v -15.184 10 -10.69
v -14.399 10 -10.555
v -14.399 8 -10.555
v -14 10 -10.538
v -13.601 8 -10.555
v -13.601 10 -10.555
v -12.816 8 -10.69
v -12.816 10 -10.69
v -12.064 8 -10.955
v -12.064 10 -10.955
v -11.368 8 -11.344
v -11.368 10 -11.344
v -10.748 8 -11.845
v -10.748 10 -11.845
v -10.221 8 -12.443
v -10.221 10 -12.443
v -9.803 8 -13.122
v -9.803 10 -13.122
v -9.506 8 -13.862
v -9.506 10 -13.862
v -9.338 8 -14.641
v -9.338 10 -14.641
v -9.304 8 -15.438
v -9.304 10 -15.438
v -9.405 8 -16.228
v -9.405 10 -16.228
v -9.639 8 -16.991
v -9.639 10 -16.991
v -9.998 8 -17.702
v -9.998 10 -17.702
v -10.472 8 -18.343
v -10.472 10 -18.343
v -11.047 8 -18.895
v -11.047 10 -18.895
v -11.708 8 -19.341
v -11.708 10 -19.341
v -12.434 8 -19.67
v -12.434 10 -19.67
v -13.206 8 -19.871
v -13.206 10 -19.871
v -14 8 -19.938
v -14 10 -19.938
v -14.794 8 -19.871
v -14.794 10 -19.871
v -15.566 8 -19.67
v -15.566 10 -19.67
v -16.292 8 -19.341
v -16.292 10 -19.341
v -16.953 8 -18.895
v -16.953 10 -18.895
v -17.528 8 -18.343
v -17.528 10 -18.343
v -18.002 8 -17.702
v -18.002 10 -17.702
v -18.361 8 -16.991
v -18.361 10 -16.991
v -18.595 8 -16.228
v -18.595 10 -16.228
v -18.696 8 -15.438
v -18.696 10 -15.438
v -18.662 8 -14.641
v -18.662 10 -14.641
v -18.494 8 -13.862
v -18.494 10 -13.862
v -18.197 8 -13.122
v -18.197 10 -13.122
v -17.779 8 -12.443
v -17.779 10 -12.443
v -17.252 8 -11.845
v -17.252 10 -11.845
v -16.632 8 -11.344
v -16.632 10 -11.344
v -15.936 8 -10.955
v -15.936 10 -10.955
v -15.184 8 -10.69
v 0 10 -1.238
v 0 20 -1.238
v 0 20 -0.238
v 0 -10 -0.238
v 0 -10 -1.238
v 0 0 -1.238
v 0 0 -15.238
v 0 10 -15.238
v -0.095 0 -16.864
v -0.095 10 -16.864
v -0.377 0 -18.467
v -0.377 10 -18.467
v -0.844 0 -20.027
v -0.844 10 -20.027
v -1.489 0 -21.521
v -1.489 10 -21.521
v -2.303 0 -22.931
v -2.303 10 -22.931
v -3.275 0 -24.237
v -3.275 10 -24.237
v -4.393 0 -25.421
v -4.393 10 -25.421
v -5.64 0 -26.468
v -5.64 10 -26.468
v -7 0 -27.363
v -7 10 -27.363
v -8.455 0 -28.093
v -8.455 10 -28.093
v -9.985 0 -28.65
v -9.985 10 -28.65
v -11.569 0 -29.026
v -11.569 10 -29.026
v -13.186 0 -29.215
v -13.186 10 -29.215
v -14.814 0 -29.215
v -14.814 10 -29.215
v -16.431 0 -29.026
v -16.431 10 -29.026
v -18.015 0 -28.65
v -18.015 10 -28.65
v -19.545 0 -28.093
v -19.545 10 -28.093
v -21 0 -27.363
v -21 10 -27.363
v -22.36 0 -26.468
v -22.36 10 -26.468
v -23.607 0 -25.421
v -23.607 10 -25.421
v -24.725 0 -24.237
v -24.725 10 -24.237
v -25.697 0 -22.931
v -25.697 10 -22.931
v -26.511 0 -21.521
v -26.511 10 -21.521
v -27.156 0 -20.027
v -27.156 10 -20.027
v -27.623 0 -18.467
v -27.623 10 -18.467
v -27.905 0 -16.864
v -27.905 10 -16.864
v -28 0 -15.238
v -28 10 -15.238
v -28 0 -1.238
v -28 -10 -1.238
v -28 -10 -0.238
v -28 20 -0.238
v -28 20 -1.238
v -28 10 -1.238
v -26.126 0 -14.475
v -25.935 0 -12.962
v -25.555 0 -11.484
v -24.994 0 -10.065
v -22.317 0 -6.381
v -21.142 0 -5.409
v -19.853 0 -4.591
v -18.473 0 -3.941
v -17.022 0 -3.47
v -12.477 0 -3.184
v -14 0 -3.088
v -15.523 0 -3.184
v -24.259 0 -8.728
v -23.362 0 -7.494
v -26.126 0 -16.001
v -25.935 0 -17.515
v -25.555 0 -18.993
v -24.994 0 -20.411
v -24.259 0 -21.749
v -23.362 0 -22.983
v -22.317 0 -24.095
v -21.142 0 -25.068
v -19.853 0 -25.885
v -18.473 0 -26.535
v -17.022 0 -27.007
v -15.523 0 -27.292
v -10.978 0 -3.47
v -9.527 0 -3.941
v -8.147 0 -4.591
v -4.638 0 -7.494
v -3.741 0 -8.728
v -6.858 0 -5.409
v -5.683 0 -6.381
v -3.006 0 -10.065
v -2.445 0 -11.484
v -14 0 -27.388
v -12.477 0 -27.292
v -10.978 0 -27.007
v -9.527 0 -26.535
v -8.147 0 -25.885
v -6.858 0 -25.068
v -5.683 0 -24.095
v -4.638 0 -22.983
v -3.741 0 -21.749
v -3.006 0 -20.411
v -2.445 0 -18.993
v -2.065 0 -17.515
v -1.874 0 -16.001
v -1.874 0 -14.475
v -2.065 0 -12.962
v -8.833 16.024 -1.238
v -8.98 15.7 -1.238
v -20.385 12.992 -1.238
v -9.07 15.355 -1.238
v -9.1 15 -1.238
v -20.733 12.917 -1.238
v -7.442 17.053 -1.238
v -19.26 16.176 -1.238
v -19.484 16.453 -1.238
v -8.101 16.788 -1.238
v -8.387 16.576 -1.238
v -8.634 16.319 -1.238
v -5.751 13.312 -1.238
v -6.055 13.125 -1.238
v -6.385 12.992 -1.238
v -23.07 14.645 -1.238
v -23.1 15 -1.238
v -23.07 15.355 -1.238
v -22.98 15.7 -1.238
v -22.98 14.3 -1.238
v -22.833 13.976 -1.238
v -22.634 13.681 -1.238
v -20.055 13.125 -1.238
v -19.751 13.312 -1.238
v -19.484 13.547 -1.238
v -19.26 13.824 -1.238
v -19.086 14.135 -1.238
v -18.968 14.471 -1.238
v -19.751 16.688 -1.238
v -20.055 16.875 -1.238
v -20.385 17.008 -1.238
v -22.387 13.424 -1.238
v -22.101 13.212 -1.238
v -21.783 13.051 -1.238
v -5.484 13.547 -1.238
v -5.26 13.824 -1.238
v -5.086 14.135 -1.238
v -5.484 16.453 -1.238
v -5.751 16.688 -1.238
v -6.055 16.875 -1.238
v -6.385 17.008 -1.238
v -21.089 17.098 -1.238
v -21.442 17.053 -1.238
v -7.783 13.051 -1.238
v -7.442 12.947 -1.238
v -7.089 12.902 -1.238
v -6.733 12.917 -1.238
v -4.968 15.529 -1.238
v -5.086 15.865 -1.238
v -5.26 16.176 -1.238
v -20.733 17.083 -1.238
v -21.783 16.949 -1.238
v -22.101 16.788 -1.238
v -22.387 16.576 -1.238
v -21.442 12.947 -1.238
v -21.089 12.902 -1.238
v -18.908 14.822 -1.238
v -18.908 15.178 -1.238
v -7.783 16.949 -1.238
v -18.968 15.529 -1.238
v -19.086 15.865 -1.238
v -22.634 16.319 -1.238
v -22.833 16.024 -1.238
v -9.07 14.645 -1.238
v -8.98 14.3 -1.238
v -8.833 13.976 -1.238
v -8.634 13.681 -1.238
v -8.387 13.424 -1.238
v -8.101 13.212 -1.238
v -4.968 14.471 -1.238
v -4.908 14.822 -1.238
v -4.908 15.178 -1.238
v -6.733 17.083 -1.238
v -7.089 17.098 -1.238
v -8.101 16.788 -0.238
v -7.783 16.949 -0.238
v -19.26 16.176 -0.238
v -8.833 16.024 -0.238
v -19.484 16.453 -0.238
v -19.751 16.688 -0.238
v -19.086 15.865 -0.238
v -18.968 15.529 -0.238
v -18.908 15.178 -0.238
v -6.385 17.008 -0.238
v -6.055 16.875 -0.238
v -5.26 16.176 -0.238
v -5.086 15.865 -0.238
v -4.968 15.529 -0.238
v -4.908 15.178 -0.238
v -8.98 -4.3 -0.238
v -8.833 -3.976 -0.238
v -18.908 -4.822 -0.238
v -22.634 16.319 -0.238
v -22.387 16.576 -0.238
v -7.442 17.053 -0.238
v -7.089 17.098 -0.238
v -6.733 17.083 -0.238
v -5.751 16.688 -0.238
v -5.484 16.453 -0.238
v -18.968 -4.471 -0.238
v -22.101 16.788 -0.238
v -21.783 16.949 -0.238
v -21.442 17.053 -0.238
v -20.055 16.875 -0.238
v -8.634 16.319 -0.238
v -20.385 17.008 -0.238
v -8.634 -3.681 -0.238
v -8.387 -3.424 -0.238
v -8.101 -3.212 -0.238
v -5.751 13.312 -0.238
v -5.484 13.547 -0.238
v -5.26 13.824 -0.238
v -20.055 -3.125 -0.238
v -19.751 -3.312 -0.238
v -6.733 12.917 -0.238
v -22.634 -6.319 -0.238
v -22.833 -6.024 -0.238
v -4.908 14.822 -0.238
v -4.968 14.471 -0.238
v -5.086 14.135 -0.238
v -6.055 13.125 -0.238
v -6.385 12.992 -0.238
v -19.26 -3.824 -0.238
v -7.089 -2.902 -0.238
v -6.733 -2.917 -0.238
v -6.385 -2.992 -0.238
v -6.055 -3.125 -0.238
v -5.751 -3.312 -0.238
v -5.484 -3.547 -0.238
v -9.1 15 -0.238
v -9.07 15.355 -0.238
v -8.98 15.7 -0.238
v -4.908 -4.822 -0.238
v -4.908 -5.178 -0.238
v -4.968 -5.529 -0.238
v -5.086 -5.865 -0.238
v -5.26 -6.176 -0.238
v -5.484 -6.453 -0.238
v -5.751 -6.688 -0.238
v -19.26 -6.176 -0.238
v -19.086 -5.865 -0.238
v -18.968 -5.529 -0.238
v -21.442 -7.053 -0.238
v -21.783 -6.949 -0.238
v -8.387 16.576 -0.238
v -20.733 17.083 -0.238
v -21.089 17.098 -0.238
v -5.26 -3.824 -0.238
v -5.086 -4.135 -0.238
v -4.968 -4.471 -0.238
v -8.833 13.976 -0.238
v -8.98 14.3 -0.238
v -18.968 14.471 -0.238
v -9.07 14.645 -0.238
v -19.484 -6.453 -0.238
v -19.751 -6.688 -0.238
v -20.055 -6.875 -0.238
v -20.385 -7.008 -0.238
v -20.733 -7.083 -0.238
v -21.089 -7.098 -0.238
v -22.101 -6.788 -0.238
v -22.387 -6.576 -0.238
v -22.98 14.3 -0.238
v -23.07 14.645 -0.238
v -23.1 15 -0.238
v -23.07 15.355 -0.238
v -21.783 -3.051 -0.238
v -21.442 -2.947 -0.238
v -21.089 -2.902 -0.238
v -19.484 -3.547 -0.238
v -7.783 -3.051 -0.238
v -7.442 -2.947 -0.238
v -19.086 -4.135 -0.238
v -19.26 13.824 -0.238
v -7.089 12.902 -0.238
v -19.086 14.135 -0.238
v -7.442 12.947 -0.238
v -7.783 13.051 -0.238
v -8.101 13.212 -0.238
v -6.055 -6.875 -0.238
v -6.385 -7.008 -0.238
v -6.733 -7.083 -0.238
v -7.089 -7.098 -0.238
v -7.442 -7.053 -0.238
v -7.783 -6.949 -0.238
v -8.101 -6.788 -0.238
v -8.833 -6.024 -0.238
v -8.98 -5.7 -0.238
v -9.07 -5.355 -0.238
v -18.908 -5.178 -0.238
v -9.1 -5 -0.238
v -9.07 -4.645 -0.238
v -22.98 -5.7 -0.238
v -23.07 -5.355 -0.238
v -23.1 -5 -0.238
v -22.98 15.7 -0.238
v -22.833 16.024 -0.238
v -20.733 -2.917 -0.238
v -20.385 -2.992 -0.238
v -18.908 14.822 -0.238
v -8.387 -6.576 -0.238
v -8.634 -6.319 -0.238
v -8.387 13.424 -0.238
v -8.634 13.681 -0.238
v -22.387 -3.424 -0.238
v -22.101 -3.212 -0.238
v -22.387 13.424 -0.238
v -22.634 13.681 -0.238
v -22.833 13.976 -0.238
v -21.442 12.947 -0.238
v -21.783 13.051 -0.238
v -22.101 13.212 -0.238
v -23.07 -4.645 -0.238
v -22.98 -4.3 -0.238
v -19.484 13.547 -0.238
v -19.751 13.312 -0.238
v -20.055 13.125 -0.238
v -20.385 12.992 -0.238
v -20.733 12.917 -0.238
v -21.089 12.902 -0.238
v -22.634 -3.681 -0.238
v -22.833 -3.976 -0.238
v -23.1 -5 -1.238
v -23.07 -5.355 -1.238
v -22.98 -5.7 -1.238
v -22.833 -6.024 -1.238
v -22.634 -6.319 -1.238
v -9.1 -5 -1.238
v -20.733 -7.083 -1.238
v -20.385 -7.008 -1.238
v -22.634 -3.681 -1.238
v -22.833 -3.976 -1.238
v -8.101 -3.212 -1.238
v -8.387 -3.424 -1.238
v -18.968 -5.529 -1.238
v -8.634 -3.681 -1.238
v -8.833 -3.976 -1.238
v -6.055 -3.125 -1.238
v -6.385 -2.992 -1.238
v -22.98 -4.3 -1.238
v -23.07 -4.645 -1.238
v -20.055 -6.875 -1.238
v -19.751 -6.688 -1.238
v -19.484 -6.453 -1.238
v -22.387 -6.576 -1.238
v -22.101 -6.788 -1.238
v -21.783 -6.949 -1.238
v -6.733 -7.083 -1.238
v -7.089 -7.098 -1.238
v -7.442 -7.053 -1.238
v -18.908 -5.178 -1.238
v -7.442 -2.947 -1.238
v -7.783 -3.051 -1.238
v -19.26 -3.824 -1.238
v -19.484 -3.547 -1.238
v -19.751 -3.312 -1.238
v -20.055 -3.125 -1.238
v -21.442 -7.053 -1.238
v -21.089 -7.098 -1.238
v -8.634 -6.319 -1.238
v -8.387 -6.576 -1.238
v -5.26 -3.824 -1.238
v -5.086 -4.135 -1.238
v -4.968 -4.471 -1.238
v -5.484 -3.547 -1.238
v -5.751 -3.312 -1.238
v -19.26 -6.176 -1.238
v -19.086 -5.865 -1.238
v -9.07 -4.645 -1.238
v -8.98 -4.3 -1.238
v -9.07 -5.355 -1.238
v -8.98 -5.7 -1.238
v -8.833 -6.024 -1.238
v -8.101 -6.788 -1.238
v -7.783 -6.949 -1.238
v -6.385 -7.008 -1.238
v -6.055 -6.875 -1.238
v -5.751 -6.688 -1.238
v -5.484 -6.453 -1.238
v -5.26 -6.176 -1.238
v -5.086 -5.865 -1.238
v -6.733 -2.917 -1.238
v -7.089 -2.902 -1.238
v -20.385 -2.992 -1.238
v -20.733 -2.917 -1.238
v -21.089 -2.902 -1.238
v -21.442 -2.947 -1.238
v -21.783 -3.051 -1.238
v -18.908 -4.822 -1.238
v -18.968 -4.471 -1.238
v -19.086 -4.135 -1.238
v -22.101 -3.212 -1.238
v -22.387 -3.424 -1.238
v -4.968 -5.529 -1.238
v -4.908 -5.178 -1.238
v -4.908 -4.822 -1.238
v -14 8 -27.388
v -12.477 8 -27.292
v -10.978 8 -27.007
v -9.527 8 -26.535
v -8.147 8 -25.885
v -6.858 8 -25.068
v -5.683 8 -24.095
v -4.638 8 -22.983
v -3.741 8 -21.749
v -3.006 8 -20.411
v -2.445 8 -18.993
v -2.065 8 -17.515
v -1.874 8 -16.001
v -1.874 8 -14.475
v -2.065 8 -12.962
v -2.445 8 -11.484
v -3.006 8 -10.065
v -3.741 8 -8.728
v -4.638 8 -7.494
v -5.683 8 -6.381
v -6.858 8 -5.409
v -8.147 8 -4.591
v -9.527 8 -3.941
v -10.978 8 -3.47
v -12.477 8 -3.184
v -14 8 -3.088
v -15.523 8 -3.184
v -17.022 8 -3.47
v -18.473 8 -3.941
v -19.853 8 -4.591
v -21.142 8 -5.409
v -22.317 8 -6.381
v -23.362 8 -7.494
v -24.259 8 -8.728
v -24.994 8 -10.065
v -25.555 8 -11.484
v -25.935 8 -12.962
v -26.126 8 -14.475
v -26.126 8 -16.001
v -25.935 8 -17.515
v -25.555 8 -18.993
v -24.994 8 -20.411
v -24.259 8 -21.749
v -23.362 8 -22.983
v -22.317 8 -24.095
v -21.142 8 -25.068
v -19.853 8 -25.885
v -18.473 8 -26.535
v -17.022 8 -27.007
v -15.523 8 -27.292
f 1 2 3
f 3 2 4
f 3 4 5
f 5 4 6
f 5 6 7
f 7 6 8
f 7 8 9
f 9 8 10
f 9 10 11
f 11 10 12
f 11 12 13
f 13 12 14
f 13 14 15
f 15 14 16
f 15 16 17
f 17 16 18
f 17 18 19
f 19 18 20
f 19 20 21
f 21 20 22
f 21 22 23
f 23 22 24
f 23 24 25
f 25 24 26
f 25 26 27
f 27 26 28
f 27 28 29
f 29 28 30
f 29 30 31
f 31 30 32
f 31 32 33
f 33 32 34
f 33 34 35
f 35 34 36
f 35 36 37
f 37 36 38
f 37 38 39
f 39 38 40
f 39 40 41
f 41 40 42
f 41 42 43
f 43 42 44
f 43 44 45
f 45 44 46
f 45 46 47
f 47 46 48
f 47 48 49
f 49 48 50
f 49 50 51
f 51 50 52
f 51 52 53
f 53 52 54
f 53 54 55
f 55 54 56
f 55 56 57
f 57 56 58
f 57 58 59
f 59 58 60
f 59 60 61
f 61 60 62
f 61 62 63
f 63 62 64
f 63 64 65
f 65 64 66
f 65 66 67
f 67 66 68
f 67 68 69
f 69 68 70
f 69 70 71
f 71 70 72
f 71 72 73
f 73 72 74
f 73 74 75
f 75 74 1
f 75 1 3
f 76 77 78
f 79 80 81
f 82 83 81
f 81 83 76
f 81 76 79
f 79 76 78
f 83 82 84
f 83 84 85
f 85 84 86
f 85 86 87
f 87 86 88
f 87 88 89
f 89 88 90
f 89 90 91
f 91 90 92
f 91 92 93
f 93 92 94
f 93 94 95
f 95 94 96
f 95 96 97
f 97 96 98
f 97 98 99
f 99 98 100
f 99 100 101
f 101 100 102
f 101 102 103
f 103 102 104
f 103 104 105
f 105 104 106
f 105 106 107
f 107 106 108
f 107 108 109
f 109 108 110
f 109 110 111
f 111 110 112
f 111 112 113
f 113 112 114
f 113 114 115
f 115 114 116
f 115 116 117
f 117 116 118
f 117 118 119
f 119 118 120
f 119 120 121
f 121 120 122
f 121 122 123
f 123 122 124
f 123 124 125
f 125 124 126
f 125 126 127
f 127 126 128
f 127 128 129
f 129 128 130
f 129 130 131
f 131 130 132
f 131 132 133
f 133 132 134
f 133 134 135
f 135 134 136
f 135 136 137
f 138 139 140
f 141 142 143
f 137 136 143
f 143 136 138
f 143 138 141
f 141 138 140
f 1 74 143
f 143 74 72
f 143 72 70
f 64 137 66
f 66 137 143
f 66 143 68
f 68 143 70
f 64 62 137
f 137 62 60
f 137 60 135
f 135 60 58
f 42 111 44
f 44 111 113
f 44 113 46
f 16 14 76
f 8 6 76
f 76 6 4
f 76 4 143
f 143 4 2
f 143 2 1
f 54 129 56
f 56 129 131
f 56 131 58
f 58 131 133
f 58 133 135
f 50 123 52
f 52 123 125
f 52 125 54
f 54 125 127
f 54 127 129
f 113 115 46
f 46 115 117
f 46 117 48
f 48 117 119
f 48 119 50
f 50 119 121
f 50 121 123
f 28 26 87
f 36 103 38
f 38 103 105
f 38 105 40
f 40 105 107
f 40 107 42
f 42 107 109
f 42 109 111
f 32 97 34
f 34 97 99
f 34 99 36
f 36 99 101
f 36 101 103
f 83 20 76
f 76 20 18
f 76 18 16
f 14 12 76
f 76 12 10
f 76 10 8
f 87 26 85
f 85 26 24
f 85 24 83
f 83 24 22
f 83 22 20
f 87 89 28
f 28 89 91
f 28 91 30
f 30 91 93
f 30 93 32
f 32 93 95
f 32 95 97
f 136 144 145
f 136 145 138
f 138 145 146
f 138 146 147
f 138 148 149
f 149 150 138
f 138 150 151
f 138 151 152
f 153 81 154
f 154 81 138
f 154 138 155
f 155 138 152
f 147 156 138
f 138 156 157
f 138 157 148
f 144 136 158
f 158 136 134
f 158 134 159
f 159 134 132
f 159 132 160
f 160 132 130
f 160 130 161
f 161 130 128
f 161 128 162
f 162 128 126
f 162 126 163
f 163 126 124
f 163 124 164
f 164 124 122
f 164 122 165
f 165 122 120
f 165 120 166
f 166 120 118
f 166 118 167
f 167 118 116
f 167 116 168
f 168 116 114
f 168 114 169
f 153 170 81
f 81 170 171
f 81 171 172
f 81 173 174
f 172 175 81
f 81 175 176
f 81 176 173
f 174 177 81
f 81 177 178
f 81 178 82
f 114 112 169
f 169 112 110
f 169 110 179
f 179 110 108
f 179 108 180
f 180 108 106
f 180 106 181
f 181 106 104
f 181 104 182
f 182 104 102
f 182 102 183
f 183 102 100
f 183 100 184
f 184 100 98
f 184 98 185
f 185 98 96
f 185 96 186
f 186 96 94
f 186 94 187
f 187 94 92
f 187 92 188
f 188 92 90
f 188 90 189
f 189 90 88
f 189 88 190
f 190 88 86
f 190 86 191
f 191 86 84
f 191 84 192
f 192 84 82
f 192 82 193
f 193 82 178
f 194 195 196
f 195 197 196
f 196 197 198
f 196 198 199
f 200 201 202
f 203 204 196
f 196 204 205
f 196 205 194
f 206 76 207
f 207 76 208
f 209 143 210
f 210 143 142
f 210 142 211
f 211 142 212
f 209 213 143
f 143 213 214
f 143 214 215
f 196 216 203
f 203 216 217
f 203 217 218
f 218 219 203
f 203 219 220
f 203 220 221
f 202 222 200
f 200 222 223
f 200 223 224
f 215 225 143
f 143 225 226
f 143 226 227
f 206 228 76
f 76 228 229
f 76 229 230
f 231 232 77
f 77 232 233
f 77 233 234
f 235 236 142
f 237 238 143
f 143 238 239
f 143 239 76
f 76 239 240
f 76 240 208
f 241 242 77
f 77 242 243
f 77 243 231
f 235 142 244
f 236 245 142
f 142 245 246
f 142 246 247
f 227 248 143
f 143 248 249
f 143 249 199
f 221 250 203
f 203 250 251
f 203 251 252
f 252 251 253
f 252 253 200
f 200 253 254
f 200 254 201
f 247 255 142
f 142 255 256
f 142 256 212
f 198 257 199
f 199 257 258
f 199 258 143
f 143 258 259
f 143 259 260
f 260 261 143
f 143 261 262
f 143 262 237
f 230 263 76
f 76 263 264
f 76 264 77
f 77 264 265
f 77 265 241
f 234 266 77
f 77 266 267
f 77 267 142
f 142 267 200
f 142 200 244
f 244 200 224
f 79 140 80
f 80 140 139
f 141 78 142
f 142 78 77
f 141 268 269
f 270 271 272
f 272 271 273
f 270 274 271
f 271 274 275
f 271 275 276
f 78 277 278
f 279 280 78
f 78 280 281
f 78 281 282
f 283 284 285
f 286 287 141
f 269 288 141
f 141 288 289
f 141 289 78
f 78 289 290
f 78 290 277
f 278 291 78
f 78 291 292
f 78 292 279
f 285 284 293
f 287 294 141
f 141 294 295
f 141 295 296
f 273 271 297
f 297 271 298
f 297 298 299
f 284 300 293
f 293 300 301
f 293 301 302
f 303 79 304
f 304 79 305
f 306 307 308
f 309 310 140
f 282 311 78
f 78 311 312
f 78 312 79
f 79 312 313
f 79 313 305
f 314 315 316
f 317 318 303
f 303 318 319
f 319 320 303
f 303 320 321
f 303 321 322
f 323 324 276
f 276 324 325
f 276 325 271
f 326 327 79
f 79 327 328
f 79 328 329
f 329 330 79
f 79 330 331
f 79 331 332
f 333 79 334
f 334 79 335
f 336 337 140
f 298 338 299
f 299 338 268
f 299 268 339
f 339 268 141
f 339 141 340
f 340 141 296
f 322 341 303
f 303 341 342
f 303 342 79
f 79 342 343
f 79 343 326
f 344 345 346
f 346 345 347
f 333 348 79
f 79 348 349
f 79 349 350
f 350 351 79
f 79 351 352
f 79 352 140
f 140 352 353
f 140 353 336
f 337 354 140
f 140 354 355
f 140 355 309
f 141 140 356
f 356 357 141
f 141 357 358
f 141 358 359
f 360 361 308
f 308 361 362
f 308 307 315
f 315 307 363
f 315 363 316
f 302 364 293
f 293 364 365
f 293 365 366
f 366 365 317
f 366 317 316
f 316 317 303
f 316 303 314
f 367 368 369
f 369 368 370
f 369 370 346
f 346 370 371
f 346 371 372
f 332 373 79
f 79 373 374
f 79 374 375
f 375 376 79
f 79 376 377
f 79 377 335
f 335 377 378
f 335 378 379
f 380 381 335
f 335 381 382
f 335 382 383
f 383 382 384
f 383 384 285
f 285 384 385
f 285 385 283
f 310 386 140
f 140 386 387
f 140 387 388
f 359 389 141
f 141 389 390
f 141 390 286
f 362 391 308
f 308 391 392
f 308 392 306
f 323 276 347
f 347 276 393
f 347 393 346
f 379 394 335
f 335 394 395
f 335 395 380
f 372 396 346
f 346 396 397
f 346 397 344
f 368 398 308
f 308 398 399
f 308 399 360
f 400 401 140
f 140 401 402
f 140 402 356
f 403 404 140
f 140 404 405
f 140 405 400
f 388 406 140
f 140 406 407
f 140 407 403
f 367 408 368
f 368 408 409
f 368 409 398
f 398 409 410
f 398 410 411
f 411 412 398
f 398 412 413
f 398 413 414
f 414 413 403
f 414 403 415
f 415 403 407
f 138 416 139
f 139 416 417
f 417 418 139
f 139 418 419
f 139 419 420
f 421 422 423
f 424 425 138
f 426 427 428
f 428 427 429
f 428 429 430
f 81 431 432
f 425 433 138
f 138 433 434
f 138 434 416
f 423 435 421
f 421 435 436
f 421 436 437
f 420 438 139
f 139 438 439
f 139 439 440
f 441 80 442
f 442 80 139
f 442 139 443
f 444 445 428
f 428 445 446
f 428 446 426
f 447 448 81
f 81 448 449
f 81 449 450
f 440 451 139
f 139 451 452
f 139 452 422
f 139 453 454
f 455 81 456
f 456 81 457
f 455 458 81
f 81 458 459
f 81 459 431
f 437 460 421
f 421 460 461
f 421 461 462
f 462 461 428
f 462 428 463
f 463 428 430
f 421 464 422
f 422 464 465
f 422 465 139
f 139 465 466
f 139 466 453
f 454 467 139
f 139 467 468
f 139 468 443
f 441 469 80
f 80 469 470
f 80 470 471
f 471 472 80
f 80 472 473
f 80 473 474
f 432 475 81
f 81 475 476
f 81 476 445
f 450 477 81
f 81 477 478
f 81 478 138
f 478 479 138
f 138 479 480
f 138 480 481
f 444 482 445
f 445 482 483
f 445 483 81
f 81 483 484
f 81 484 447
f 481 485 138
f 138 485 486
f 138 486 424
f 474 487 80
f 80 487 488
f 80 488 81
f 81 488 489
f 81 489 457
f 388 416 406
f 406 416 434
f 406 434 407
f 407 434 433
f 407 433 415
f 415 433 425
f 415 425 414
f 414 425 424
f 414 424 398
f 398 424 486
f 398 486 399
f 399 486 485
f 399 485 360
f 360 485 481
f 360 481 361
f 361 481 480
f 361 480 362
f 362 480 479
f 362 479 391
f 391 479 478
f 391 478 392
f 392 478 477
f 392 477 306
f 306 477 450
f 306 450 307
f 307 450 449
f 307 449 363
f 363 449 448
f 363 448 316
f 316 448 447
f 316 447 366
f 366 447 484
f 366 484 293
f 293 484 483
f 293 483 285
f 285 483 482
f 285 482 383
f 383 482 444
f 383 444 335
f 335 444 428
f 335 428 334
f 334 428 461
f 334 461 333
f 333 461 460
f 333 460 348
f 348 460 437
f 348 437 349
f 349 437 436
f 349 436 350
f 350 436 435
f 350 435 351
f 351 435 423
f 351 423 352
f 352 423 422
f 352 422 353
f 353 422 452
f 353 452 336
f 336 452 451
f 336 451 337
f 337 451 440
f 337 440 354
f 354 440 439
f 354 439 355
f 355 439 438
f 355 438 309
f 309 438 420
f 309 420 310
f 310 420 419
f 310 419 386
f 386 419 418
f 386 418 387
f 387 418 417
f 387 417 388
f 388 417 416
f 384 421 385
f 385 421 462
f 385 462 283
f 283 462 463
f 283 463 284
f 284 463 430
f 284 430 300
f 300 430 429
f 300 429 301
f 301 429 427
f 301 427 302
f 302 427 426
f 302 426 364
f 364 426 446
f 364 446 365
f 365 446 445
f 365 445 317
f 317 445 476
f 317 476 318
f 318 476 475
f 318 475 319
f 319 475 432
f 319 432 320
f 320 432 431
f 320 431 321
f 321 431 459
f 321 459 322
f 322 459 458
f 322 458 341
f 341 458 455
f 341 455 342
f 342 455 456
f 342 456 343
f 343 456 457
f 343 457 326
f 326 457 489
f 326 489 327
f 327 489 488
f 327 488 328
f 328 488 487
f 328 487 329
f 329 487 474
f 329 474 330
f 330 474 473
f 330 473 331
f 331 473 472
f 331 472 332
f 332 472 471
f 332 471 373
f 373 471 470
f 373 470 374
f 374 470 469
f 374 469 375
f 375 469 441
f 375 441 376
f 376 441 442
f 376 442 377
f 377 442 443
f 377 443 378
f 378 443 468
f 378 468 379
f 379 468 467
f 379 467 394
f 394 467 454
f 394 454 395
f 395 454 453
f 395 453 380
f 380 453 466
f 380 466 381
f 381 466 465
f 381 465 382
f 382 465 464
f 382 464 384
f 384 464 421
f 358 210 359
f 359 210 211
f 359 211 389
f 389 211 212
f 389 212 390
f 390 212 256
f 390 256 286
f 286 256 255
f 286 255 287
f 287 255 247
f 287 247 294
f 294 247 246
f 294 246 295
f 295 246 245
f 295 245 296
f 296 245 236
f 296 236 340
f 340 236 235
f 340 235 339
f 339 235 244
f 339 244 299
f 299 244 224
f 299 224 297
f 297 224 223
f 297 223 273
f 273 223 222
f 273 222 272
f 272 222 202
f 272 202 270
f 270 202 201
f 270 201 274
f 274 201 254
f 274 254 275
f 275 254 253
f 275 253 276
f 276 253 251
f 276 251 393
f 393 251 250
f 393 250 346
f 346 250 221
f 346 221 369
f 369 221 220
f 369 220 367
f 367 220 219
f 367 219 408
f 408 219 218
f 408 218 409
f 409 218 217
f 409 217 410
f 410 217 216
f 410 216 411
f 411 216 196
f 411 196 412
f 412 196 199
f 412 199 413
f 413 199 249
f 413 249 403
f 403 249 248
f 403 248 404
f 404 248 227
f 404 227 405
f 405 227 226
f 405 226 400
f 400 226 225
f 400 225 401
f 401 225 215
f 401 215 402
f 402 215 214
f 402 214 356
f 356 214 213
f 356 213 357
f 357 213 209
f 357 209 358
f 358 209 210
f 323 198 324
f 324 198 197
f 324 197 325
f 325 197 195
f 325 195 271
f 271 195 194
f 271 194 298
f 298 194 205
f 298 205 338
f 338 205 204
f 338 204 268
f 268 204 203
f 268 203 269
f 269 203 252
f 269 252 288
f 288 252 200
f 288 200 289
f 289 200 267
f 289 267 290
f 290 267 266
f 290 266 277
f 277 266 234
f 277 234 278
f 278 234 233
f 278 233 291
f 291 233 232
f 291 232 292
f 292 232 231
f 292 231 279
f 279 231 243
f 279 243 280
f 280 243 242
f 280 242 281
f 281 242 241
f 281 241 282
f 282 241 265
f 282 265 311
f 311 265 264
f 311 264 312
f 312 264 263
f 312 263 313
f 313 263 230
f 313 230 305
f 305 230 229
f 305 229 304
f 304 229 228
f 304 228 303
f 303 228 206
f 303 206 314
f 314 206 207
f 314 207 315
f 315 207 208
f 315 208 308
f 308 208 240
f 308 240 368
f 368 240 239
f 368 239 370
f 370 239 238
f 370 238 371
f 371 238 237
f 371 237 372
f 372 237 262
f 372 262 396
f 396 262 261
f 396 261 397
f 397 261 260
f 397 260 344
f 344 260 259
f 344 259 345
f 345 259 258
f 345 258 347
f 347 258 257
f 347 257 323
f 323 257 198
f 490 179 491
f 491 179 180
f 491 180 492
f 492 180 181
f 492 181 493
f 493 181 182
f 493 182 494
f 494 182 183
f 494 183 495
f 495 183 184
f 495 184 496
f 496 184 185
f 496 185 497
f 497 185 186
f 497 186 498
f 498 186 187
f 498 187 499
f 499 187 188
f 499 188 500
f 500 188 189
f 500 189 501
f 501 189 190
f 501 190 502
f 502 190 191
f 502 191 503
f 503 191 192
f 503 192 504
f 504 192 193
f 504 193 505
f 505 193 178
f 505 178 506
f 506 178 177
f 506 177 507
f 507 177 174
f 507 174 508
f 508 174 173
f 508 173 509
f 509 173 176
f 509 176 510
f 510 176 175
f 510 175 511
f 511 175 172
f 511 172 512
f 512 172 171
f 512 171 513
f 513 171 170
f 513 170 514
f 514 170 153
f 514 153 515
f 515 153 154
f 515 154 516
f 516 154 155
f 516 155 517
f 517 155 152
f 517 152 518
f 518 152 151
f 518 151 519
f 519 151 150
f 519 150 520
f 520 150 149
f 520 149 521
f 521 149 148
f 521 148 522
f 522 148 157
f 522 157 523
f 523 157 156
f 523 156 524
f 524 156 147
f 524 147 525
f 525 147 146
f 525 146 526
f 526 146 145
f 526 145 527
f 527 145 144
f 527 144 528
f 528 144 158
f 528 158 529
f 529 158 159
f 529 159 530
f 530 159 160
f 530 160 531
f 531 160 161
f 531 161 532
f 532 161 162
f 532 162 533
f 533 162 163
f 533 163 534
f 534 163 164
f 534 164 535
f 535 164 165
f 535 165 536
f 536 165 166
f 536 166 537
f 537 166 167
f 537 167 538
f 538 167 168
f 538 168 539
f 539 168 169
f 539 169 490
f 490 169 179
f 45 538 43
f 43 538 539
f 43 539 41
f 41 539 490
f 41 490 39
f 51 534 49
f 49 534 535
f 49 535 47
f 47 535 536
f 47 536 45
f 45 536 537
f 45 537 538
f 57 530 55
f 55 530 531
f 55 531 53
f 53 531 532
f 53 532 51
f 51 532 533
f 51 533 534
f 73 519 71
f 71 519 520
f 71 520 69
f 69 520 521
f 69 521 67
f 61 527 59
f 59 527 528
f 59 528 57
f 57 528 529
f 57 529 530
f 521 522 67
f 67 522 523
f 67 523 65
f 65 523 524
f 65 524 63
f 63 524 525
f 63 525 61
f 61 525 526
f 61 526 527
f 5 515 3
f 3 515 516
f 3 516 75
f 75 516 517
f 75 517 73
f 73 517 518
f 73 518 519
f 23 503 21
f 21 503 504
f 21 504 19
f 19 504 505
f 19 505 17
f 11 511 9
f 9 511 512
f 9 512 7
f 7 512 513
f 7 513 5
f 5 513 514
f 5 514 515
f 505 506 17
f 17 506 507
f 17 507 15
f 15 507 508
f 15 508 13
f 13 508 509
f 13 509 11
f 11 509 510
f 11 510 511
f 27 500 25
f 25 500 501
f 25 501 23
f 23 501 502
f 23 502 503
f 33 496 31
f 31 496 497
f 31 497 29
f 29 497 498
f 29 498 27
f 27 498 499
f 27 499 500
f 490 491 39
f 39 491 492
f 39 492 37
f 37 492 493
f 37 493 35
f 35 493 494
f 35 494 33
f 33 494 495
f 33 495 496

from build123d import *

# Parameters (mm, degrees)
SKETCH1_R                   = 4.7
BOSS_EXTRUDE1_DEPTH         = 10
SKETCH2_W                   = 28
SKETCH2_H                   = 30
BOSS_EXTRUDE2_DEPTH         = 1
TAP_DRILL_FOR_M5X0_8_TAP1_D = 4.2
SKETCH5_R                   = 12.15
SKETCH5_R_2                 = 4.7
CUT_EXTRUDE1_DEPTH          = 8


with BuildPart() as part:
    # Sketch1 → Boss-Extrude1 (new body)
    with BuildSketch(Plane(origin=(0, 0, 0), x_dir=(1, 0, 0), z_dir=(0, 1, 0))):
        with BuildLine():
            Line((0, 1.238241861), (0, 15.238241861))
            ThreePointArc((0, 15.238241861), (-14, 29.238241861), (-28, 15.238241861))
            Line((-28, 15.238241861), (-28, 1.238241861))
            Line((-28, 1.238241861), (0, 1.238241861))
        make_face()
        with Locations((-14, 15.238241861)):
            Circle(SKETCH1_R, mode=Mode.SUBTRACT)
    extrude(amount=BOSS_EXTRUDE1_DEPTH)

    # Sketch2 → Boss-Extrude2 (add)
    with BuildSketch(Plane.XY.offset(-1.238241861)):
        with Locations((-14, 5)):
            Rectangle(SKETCH2_W, SKETCH2_H)
    extrude(amount=BOSS_EXTRUDE2_DEPTH)

    # Tap Drill for M5x0.8 Tap1 (through all)
    with Locations(Plane(origin=(0, 0, -1.238241861), x_dir=(-1, 0, 0), z_dir=(0, 0, -1))):
        with Locations((7, 15), (21, 15), (7, -5), (21, -5)):
            Hole(TAP_DRILL_FOR_M5X0_8_TAP1_D / 2)

    # Sketch5 → Cut-Extrude1 (cut)
    with BuildSketch(Plane.XZ):
        with Locations((-14, -15.238241861)):
            Circle(SKETCH5_R)
        with Locations((-14, -15.238241861)):
            Circle(SKETCH5_R_2, mode=Mode.SUBTRACT)
    extrude(amount=-CUT_EXTRUDE1_DEPTH, mode=Mode.SUBTRACT)


solid = part.part
